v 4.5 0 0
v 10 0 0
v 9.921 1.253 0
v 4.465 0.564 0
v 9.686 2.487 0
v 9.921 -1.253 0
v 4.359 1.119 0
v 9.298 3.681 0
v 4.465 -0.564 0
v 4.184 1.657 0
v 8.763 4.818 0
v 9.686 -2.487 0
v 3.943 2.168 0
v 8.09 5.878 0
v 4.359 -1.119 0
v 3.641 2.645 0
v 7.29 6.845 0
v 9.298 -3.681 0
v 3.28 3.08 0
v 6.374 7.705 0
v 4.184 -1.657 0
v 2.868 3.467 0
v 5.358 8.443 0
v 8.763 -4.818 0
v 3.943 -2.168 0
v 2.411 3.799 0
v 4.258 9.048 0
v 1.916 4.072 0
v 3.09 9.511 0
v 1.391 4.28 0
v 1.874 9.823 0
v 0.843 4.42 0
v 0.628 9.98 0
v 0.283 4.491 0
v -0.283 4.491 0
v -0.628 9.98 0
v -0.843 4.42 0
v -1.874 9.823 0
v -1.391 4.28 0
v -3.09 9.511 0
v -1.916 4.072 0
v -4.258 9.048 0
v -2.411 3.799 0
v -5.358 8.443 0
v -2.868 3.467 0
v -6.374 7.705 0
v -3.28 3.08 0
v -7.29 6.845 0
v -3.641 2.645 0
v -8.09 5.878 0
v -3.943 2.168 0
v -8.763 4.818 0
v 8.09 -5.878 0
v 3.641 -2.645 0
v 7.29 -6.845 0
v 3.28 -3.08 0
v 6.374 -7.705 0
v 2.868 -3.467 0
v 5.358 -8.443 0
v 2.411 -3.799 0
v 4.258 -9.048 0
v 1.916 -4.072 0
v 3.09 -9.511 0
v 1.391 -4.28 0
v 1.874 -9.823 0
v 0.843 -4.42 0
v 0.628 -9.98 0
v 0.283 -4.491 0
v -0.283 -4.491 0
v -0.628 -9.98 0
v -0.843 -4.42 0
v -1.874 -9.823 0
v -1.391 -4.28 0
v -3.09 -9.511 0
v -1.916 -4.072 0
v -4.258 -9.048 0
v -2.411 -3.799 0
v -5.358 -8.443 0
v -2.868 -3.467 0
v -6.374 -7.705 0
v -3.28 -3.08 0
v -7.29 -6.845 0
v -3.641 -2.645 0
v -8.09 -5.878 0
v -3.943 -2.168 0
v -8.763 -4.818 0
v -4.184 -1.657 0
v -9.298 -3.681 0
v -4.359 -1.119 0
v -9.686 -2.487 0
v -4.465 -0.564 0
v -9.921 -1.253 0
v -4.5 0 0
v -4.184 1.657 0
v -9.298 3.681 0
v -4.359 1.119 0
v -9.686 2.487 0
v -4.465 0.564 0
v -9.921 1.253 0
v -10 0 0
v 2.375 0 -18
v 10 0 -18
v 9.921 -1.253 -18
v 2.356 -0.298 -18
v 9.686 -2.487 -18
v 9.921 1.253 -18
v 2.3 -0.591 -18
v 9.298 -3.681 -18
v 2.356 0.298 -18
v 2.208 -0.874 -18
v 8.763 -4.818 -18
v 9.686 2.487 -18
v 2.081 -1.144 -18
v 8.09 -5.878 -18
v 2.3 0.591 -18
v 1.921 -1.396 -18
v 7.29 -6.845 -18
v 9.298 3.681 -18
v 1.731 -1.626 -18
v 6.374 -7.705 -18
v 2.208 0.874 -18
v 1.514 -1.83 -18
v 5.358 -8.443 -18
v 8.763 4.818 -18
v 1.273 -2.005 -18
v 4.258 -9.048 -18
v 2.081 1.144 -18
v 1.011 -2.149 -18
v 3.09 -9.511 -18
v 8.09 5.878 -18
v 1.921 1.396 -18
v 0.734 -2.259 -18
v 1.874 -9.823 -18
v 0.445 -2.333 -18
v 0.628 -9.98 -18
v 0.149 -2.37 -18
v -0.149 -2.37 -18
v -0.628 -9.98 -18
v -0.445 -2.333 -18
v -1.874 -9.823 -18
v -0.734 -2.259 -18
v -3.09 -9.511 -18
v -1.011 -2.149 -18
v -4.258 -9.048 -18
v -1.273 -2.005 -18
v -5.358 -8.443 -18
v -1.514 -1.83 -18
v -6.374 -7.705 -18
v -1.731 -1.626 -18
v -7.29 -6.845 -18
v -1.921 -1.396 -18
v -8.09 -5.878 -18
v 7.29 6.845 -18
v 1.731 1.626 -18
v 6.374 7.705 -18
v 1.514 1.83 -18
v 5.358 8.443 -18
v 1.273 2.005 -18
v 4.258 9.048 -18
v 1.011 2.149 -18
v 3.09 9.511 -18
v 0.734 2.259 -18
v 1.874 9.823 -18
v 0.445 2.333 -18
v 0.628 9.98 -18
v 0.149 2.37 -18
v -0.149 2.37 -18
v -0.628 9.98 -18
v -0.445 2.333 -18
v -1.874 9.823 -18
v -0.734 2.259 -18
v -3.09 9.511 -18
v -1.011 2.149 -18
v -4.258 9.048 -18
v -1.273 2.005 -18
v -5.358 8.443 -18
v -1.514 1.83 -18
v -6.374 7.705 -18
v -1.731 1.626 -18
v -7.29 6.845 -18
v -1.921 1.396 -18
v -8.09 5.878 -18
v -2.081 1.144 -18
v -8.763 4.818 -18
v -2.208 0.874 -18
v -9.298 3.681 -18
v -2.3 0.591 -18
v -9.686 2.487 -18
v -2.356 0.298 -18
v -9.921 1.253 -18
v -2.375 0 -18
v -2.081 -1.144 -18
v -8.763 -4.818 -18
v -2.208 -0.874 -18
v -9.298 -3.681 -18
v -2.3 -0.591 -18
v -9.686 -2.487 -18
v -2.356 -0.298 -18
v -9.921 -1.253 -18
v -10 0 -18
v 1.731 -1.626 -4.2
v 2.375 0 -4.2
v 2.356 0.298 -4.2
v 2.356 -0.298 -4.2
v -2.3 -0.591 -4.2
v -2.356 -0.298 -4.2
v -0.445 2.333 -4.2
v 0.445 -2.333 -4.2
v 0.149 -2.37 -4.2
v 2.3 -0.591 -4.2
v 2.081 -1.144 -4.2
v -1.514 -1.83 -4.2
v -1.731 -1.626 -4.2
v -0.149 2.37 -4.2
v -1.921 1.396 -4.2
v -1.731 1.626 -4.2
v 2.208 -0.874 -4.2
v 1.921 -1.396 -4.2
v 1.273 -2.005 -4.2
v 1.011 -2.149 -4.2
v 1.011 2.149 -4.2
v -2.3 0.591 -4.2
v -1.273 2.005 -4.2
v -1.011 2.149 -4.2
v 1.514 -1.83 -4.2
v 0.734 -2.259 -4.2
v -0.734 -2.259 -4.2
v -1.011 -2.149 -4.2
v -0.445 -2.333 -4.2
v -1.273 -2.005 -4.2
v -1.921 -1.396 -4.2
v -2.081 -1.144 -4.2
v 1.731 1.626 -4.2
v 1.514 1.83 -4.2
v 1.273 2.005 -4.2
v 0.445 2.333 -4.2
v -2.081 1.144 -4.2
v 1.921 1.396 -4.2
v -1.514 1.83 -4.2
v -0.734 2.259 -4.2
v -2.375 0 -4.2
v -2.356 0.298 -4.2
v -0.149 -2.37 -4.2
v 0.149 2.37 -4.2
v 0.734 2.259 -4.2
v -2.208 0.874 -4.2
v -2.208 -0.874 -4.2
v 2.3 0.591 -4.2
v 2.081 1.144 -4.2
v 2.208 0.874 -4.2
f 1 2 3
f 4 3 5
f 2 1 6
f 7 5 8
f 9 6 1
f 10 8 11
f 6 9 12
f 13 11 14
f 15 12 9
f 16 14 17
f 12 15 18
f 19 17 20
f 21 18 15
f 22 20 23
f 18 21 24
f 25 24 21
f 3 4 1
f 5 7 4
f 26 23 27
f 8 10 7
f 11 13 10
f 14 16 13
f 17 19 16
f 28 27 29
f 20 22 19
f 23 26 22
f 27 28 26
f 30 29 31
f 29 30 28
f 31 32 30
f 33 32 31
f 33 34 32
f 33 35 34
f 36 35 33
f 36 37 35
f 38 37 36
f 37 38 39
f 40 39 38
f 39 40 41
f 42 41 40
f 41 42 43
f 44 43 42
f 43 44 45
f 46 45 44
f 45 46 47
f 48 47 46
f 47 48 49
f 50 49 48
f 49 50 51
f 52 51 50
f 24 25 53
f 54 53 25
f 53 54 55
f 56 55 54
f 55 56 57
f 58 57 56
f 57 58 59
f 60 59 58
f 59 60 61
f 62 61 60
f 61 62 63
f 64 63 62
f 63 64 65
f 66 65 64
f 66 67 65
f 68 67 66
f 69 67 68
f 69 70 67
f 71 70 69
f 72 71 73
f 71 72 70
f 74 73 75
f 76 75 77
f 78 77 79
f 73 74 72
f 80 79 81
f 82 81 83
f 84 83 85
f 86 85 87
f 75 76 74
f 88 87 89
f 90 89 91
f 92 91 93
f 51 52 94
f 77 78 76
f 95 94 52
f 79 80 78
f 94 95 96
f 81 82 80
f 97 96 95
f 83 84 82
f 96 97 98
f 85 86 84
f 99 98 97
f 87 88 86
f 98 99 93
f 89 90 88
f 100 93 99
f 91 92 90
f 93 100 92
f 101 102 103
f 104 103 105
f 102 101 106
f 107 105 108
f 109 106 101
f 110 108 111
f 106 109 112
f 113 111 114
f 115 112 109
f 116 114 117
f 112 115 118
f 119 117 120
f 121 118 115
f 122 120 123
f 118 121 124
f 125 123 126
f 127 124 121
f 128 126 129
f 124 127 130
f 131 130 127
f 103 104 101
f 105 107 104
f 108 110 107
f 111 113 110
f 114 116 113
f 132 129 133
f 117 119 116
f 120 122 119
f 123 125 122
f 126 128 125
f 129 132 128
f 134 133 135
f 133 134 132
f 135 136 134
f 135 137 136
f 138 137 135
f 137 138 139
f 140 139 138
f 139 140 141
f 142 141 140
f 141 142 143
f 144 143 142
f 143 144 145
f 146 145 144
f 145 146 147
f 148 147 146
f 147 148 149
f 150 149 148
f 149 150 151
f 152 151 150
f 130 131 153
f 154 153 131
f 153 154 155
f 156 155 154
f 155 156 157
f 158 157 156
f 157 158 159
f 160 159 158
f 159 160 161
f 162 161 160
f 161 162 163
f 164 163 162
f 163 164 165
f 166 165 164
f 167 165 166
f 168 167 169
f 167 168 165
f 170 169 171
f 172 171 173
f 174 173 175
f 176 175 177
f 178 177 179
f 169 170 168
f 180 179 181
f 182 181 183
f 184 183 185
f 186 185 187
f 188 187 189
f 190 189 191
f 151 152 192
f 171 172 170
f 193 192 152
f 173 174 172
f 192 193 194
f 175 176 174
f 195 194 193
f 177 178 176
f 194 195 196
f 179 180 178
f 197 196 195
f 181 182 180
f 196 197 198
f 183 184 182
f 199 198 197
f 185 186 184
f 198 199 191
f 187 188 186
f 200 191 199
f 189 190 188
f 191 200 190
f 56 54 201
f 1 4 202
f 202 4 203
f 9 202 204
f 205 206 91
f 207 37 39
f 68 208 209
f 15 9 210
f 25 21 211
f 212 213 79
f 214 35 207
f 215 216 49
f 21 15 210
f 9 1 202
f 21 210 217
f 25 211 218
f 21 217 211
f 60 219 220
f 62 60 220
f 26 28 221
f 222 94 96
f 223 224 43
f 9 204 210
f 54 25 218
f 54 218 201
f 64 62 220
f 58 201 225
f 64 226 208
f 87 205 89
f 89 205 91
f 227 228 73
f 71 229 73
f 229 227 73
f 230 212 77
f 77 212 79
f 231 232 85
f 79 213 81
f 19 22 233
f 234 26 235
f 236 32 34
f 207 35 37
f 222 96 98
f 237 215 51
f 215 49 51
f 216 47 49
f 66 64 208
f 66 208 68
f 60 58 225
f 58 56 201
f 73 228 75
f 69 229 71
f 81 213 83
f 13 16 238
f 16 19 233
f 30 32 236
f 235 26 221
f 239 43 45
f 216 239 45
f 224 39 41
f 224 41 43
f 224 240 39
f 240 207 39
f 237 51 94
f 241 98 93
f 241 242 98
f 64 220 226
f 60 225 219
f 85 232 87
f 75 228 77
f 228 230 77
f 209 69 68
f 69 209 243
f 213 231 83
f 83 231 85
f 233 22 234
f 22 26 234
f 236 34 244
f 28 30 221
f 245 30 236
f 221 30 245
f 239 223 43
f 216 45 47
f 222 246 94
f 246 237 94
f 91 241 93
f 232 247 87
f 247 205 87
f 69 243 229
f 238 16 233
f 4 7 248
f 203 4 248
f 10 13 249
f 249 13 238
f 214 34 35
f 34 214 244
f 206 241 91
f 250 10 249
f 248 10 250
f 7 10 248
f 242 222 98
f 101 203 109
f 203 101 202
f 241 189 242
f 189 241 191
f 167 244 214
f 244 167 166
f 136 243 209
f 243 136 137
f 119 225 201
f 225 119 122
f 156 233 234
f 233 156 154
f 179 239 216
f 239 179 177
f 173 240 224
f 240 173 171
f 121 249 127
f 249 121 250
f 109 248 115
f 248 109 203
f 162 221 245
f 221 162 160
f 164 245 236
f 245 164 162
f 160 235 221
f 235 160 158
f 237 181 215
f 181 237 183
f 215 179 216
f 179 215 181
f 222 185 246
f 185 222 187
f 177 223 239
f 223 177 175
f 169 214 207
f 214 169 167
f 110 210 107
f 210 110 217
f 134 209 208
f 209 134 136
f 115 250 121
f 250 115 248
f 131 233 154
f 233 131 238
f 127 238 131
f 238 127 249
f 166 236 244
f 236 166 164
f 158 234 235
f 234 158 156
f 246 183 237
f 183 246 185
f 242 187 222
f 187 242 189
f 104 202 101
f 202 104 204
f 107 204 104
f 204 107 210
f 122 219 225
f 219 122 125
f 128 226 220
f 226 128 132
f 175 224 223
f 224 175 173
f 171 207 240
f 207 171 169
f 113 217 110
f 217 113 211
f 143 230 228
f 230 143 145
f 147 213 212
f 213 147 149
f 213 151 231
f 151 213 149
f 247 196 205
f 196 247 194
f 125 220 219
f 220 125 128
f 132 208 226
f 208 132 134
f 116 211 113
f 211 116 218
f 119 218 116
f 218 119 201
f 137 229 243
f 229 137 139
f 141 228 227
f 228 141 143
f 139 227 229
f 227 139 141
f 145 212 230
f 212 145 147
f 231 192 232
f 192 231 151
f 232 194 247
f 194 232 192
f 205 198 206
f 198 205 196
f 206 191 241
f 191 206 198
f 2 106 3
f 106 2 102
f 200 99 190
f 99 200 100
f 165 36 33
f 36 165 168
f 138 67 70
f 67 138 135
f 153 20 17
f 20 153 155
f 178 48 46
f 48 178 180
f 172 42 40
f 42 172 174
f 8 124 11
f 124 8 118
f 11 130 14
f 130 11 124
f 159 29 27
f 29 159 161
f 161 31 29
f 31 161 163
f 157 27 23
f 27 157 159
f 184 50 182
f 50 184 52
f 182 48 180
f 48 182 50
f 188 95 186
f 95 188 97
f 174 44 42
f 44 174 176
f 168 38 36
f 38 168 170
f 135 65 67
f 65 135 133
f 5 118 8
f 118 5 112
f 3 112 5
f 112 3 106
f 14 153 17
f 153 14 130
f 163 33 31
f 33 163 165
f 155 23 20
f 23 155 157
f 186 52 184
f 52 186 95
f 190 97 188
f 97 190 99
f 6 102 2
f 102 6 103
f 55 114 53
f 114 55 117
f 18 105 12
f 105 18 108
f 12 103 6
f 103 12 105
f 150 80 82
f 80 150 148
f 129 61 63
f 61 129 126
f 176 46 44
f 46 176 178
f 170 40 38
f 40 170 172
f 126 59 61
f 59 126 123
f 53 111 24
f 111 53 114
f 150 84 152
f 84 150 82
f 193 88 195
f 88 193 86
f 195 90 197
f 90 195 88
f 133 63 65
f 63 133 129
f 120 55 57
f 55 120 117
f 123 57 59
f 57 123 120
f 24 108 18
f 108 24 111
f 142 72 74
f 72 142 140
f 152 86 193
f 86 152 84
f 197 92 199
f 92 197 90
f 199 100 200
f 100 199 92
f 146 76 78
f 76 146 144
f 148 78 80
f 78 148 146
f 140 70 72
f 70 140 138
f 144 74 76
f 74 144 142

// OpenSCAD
$fn = 50;


difference() {
	union() {
		translate(v = [0, 0, -18.0000000000]) {
			cylinder(h = 18, r = 10.0000000000);
		}
		cylinder(h = 0, r = 13.0000000000);
	}
	union() {
		translate(v = [0, 0, 0]) {
			rotate(a = [0, 0, 0]) {
				difference() {
					union() {
						#translate(v = [0, 0, -18.0000000000]) {
							cylinder(h = 18, r = 2.2500000000);
						}
						#translate(v = [0, 0, -4.2000000000]) {
							cylinder(h = 4.2000000000, r1 = 2.3750000000, r2 = 4.5000000000);
						}
						#translate(v = [0, 0, -18.0000000000]) {
							cylinder(h = 18, r = 2.3750000000);
						}
						#translate(v = [0, 0, -18.0000000000]) {
							cylinder(h = 18, r = 2.2500000000);
						}
					}
					union();
				}
			}
		}
	}
}
